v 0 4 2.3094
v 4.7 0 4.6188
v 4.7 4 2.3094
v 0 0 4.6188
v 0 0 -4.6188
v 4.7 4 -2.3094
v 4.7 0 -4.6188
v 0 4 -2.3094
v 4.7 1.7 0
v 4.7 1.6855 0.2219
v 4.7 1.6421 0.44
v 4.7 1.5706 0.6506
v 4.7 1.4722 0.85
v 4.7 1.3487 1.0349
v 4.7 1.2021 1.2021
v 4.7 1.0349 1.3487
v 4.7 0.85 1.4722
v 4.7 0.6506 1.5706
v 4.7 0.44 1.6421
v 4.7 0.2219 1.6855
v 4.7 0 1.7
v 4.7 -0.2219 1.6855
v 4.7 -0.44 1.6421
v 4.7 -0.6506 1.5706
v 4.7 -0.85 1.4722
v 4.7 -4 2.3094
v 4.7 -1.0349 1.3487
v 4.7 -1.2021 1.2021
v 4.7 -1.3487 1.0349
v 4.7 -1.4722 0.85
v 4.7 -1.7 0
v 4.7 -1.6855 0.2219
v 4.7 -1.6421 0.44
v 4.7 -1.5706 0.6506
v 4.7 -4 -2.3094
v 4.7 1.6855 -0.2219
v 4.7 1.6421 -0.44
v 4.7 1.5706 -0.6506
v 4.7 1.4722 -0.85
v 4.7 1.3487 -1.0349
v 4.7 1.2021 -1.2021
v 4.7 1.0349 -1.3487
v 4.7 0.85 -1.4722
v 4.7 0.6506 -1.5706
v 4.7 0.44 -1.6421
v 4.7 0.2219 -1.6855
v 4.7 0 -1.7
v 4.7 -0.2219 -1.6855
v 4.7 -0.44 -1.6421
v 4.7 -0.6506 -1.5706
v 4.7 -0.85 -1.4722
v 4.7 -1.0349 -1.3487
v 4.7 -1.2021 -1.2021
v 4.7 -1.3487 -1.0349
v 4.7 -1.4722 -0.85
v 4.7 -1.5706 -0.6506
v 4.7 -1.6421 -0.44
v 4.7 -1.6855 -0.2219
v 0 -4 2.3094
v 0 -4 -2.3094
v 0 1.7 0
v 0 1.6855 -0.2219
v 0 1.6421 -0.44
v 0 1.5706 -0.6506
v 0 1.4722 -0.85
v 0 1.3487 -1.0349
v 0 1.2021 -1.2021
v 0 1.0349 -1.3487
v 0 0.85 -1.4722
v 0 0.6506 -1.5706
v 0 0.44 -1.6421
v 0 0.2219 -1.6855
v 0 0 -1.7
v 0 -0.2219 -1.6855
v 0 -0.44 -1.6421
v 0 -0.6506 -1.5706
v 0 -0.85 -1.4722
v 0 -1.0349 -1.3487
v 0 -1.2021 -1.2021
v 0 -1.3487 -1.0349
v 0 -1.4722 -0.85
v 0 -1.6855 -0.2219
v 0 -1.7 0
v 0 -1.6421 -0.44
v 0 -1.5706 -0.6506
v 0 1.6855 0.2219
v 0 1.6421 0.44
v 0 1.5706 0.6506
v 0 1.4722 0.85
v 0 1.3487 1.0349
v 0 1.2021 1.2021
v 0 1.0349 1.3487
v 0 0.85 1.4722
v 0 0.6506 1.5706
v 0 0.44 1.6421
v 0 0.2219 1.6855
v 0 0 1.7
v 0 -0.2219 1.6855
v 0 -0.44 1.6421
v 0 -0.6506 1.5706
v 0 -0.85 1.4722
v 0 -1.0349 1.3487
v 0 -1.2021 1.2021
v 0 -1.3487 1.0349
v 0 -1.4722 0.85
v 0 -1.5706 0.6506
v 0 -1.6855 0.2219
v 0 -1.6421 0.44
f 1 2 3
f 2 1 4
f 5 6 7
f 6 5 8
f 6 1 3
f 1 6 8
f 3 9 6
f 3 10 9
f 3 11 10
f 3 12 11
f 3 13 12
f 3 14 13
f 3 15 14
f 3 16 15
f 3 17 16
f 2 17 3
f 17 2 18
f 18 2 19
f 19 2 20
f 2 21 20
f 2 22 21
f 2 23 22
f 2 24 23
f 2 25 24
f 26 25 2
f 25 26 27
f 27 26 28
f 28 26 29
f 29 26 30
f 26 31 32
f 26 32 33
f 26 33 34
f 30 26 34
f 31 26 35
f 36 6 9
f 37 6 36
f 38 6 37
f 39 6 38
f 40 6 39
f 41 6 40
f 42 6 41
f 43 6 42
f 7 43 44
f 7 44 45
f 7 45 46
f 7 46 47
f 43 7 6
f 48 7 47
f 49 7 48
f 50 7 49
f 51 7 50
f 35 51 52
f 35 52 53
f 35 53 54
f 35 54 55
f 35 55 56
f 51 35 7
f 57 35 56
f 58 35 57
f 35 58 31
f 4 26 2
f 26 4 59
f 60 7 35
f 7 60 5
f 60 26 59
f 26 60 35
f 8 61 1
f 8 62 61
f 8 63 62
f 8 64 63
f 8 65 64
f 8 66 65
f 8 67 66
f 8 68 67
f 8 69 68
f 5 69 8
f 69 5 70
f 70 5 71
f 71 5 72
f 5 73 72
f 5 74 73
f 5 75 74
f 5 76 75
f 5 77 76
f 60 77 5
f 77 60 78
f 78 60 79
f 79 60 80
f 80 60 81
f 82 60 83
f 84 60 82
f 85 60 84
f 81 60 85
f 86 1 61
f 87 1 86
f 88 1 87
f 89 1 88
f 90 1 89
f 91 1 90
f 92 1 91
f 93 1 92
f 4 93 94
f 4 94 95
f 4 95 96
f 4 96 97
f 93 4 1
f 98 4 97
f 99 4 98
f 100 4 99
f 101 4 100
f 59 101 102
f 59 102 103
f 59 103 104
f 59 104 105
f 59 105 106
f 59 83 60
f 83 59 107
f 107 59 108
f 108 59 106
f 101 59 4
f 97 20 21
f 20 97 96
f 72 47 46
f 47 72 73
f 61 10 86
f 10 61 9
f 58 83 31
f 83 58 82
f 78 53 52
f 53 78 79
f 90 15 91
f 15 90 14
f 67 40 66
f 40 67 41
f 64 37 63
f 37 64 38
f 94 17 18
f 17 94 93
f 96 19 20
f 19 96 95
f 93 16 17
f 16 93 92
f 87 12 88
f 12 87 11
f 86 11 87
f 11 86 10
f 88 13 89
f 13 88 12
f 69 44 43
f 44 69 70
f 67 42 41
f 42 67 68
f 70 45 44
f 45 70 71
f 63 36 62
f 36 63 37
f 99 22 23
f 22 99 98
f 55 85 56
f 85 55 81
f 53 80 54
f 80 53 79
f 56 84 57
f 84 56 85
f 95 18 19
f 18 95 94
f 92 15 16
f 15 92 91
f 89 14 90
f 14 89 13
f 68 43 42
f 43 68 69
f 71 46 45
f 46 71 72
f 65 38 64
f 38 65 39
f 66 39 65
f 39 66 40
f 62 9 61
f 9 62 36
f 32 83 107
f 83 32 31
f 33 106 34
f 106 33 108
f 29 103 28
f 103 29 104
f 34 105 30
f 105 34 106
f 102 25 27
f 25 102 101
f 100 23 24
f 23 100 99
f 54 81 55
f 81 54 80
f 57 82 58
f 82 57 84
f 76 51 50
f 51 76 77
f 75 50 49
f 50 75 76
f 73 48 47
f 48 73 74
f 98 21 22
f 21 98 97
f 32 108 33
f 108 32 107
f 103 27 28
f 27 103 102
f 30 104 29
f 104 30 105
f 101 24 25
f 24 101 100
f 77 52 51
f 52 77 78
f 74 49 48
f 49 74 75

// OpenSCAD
// file: ../../../lib/nutsnbolts/data-access.scad
// Norm Nuts and Bolts - a OpenSCAD library
// Copyright (C) 2012  Johannes Kneer

// This program is free software: you can redistribute it and/or modify
// it under the terms of the GNU General Public License as published by
// the Free Software Foundation, either version 3 of the License, or
// (at your option) any later version.

// This program is distributed in the hope that it will be useful,
// but WITHOUT ANY WARRANTY; without even the implied warranty of
// MERCHANTABILITY or FITNESS FOR A PARTICULAR PURPOSE.  See the
// GNU General Public License for more details.

// You should have received a copy of the GNU General Public License
// along with this program.  If not, see <http://www.gnu.org/licenses/>.


// DATABASE ACCESS FUNCTIONS AND CONSTANTS



// == CONSTANTS ==

// screw table access keys
_NB_S_DESC            = 0;
_NB_S_FAMKEY			    = 1;
_NB_S_LENGTH          = 2;
_NB_S_NOTHREAD_LENGTH = 3;

_NB_F_DESC			      = 0;
_NB_F_OUTER_DIA       = 1;
_NB_F_INNER_DIA       = 2;
_NB_F_LEAD            = 3;
_NB_F_KEY             = 4;
_NB_F_KEY_DEPTH       = 5;
_NB_F_HEAD_HEIGHT     = 6;
_NB_F_HEAD_DIA        = 7;
_NB_F_NUT_KEY         = 8;
_NB_F_NUT_HEIGHT      = 9;
_NB_F_PITCH_FINE      = 10;
_NB_F_PITCH_MEDIUM    = 11;
_NB_F_PITCH_COARSE    = 12;


// == FUNCTIONS ==

// _get_screw("descriptor")   with descriptor = M8x25
//   find the line for a general object in the data matrix

function _get_screw(n) = data_screw[search([n], data_screw)[0]];
function _get_screw_fam(n) = data_screw_fam[search([_get_screw(n)[_NB_S_FAMKEY]], data_screw_fam)[0]];

function _get_fam(n) = data_screw_fam[search([n], data_screw_fam)[0]];


// _get_XXXXX("descriptor") functions
// find a single property in the database

function _get_desc(n)        = _get_screw(n)[_NB_S_DESC];
function _get_famkey(n)         = _get_screw(n)[_NB_S_FAMKEY];
function _get_length(n)      = _get_screw(n)[_NB_S_LENGTH];
function _get_nt_length(n)   = _get_screw(n)[_NB_S_NOTHREAD_LENGTH];

function _get_outer_dia(n)   = _get_screw_fam(n)[_NB_F_OUTER_DIA];
function _get_inner_dia(n)   = _get_screw_fam(n)[_NB_F_INNER_DIA];
function _get_lead(n)        = _get_screw_fam(n)[_NB_F_LEAD];
function _get_head_height(n) = _get_screw_fam(n)[_NB_F_HEAD_HEIGHT];
function _get_head_dia(n)    = _get_screw_fam(n)[_NB_F_HEAD_DIA];
function _get_nut_key(n)     = _get_screw_fam(n)[_NB_F_NUT_KEY];
function _get_nut_height(n)  = _get_screw_fam(n)[_NB_F_NUT_HEIGHT];
function _get_fine_pitch(n)  = _get_screw_fam(n)[_NB_F_PITCH_FINE];
function _get_medium_pitch(n)  = _get_screw_fam(n)[_NB_F_PITCH_MEDIUM];
function _get_coarse_pitch(n)  = _get_screw_fam(n)[_NB_F_PITCH_COARSE];
// main file
/**********************************************************************************************************************
 **
 ** parts/vitamins/nut_M5.scad
 **
 ** This file renders a nut of the dimensions specified by the file name.
 **
 **********************************************************************************************************************/

include <../../../lib/nutsnbolts/cyl_head_bolt.scad>;

$fn = 48;
rotate([0, -90, 0])
	nut("M5"); 
